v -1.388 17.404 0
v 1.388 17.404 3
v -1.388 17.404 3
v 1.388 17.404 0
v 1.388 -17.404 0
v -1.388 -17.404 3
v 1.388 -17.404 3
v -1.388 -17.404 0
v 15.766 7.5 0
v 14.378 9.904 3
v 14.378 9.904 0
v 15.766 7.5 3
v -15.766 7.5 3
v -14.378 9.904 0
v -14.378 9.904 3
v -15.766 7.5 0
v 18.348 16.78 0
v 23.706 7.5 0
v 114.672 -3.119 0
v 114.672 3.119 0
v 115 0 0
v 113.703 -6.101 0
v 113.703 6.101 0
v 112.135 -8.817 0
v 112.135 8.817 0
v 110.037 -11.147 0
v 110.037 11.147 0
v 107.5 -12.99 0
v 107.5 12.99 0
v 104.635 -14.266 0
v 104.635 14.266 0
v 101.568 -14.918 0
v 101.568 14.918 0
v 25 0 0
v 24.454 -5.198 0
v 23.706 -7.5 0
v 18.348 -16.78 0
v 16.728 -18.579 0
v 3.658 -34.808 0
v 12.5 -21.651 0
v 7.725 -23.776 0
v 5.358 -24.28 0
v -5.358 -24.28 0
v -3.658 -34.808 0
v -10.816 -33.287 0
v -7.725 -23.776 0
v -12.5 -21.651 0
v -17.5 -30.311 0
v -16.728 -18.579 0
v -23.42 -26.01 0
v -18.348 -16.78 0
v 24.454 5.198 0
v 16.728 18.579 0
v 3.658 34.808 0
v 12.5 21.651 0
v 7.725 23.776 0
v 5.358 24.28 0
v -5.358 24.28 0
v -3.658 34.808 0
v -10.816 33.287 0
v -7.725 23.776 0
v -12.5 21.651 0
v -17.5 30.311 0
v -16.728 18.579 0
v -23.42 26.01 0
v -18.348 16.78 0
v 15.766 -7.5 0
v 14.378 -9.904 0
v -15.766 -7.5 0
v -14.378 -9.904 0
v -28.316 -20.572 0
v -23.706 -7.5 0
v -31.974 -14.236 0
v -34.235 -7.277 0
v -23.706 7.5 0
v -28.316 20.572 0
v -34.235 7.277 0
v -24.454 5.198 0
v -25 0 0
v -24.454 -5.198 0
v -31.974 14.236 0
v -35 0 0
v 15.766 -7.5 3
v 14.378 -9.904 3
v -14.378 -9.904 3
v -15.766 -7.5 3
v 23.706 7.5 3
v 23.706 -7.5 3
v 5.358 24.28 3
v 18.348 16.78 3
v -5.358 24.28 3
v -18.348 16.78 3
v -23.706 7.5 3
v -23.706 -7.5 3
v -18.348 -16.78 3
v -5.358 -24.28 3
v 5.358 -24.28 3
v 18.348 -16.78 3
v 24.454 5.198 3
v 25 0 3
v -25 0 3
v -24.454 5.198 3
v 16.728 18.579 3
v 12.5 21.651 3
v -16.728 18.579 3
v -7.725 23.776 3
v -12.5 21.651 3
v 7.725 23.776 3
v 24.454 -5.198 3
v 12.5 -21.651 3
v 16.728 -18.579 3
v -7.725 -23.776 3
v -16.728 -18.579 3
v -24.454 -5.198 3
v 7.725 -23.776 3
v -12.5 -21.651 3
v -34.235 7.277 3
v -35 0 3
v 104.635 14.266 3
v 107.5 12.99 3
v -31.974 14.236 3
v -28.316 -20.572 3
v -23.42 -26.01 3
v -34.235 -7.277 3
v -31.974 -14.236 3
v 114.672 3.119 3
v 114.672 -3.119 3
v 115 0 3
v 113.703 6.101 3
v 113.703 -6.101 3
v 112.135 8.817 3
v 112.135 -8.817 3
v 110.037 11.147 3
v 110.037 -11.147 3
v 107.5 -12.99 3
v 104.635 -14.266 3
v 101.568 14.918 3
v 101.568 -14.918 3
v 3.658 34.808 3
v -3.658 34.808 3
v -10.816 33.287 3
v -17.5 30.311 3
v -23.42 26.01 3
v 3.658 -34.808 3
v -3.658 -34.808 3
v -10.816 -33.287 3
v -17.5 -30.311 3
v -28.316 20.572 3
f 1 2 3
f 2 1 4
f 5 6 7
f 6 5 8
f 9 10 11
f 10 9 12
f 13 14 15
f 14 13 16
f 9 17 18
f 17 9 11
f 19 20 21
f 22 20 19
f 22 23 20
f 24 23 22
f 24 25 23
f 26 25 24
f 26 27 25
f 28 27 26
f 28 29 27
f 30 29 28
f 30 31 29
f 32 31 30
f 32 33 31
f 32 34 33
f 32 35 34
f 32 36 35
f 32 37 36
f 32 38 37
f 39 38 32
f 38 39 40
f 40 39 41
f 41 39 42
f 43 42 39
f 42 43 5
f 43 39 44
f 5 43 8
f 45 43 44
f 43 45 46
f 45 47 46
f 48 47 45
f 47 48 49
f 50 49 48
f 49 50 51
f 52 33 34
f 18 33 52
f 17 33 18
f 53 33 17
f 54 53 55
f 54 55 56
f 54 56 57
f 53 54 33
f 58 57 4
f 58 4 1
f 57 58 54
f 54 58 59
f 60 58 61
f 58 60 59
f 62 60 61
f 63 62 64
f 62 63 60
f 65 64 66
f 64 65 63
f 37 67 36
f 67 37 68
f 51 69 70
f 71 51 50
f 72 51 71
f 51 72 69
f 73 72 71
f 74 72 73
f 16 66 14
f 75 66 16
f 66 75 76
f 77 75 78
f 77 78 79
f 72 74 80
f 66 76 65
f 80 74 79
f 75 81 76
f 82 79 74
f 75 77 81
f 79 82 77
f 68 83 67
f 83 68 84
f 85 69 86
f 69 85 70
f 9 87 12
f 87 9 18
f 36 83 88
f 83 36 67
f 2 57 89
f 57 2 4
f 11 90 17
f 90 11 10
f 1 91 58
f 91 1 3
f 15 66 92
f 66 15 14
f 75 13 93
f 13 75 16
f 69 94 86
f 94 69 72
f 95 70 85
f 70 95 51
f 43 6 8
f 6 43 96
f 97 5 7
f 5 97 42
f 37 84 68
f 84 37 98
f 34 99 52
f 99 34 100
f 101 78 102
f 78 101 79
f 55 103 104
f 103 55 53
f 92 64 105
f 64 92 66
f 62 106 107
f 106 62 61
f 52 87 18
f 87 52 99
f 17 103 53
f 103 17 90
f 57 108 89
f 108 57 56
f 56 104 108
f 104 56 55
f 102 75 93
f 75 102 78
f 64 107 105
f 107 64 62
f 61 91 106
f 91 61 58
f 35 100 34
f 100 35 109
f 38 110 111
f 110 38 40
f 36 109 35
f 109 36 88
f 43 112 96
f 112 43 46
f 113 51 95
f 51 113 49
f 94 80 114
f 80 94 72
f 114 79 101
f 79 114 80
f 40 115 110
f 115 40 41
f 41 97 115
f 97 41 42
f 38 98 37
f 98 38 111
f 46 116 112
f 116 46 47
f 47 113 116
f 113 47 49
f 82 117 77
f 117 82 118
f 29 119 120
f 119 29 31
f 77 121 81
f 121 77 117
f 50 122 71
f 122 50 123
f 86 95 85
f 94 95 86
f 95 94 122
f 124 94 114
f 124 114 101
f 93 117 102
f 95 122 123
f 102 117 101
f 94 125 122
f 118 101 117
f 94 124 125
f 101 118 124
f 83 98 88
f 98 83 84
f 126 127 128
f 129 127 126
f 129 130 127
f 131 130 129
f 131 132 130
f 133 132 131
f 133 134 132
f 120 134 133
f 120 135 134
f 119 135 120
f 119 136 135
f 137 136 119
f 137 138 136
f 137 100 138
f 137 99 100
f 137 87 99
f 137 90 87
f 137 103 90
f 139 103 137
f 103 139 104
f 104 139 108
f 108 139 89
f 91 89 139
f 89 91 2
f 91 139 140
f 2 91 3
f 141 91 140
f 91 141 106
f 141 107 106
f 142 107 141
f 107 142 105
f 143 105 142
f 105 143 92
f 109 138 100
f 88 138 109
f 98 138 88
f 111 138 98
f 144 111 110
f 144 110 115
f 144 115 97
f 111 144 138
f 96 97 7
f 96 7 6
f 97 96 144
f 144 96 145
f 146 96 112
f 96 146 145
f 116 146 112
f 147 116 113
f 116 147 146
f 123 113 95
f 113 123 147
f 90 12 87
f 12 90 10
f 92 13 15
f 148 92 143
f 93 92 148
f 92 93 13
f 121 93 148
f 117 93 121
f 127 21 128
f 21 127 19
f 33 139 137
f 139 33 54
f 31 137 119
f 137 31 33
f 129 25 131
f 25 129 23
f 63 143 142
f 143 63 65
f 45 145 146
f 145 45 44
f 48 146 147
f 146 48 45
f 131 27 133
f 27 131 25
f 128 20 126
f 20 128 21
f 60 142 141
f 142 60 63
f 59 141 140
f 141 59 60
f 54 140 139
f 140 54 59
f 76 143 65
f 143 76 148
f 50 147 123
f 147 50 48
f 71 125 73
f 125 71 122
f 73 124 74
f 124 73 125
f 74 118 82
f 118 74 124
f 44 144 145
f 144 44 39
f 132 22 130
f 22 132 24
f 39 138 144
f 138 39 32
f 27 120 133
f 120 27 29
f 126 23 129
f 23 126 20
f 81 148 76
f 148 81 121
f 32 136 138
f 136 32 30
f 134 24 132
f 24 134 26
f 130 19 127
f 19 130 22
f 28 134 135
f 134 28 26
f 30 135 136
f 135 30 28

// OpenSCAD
    
// LeafieldValveWrench

thickness = 3;
socketH = 4;
//socketExternalRadius = 48.9 / 2;
socketExternalRadius = 50/2;
socketInternalRadius = 35/2;
socketTooth = 15;
toolR = 35;
toolHandle = 100;

difference() { 
    
hull() {
    cylinder(thickness, toolR, toolR);
    
    translate([toolHandle, 0,0])
    cylinder(thickness, 15, 15);
}

intersection() {

    cylinder(socketH, socketExternalRadius, socketExternalRadius);

    union() {
        cylinder(socketH, socketInternalRadius, socketInternalRadius);
        
        translate([socketExternalRadius - socketTooth/2,0,0])
        translate([-socketTooth/2, -socketTooth/2, 0])
        cube([socketTooth, socketTooth, socketH]);

        rotate([0,0,60])
        translate([socketExternalRadius - socketTooth/2,0,0])
        translate([-socketTooth/2, -socketTooth/2, 0])
        cube([socketTooth, socketTooth, socketH]);

        rotate([0,0,120])
        translate([socketExternalRadius - socketTooth/2,0,0])
        translate([-socketTooth/2, -socketTooth/2, 0])
        cube([socketTooth, socketTooth, socketH]);

        rotate([0,0,180])
        translate([socketExternalRadius - socketTooth/2,0,0])
        translate([-socketTooth/2, -socketTooth/2, 0])
        cube([socketTooth, socketTooth, socketH]);

        rotate([0,0,240])
        translate([socketExternalRadius - socketTooth/2,0,0])
        translate([-socketTooth/2, -socketTooth/2, 0])
        cube([socketTooth, socketTooth, socketH]);

        rotate([0,0,300])
        translate([socketExternalRadius - socketTooth/2,0,0])
        translate([-socketTooth/2, -socketTooth/2, 0])
        cube([socketTooth, socketTooth, socketH]);

    }
}
}
